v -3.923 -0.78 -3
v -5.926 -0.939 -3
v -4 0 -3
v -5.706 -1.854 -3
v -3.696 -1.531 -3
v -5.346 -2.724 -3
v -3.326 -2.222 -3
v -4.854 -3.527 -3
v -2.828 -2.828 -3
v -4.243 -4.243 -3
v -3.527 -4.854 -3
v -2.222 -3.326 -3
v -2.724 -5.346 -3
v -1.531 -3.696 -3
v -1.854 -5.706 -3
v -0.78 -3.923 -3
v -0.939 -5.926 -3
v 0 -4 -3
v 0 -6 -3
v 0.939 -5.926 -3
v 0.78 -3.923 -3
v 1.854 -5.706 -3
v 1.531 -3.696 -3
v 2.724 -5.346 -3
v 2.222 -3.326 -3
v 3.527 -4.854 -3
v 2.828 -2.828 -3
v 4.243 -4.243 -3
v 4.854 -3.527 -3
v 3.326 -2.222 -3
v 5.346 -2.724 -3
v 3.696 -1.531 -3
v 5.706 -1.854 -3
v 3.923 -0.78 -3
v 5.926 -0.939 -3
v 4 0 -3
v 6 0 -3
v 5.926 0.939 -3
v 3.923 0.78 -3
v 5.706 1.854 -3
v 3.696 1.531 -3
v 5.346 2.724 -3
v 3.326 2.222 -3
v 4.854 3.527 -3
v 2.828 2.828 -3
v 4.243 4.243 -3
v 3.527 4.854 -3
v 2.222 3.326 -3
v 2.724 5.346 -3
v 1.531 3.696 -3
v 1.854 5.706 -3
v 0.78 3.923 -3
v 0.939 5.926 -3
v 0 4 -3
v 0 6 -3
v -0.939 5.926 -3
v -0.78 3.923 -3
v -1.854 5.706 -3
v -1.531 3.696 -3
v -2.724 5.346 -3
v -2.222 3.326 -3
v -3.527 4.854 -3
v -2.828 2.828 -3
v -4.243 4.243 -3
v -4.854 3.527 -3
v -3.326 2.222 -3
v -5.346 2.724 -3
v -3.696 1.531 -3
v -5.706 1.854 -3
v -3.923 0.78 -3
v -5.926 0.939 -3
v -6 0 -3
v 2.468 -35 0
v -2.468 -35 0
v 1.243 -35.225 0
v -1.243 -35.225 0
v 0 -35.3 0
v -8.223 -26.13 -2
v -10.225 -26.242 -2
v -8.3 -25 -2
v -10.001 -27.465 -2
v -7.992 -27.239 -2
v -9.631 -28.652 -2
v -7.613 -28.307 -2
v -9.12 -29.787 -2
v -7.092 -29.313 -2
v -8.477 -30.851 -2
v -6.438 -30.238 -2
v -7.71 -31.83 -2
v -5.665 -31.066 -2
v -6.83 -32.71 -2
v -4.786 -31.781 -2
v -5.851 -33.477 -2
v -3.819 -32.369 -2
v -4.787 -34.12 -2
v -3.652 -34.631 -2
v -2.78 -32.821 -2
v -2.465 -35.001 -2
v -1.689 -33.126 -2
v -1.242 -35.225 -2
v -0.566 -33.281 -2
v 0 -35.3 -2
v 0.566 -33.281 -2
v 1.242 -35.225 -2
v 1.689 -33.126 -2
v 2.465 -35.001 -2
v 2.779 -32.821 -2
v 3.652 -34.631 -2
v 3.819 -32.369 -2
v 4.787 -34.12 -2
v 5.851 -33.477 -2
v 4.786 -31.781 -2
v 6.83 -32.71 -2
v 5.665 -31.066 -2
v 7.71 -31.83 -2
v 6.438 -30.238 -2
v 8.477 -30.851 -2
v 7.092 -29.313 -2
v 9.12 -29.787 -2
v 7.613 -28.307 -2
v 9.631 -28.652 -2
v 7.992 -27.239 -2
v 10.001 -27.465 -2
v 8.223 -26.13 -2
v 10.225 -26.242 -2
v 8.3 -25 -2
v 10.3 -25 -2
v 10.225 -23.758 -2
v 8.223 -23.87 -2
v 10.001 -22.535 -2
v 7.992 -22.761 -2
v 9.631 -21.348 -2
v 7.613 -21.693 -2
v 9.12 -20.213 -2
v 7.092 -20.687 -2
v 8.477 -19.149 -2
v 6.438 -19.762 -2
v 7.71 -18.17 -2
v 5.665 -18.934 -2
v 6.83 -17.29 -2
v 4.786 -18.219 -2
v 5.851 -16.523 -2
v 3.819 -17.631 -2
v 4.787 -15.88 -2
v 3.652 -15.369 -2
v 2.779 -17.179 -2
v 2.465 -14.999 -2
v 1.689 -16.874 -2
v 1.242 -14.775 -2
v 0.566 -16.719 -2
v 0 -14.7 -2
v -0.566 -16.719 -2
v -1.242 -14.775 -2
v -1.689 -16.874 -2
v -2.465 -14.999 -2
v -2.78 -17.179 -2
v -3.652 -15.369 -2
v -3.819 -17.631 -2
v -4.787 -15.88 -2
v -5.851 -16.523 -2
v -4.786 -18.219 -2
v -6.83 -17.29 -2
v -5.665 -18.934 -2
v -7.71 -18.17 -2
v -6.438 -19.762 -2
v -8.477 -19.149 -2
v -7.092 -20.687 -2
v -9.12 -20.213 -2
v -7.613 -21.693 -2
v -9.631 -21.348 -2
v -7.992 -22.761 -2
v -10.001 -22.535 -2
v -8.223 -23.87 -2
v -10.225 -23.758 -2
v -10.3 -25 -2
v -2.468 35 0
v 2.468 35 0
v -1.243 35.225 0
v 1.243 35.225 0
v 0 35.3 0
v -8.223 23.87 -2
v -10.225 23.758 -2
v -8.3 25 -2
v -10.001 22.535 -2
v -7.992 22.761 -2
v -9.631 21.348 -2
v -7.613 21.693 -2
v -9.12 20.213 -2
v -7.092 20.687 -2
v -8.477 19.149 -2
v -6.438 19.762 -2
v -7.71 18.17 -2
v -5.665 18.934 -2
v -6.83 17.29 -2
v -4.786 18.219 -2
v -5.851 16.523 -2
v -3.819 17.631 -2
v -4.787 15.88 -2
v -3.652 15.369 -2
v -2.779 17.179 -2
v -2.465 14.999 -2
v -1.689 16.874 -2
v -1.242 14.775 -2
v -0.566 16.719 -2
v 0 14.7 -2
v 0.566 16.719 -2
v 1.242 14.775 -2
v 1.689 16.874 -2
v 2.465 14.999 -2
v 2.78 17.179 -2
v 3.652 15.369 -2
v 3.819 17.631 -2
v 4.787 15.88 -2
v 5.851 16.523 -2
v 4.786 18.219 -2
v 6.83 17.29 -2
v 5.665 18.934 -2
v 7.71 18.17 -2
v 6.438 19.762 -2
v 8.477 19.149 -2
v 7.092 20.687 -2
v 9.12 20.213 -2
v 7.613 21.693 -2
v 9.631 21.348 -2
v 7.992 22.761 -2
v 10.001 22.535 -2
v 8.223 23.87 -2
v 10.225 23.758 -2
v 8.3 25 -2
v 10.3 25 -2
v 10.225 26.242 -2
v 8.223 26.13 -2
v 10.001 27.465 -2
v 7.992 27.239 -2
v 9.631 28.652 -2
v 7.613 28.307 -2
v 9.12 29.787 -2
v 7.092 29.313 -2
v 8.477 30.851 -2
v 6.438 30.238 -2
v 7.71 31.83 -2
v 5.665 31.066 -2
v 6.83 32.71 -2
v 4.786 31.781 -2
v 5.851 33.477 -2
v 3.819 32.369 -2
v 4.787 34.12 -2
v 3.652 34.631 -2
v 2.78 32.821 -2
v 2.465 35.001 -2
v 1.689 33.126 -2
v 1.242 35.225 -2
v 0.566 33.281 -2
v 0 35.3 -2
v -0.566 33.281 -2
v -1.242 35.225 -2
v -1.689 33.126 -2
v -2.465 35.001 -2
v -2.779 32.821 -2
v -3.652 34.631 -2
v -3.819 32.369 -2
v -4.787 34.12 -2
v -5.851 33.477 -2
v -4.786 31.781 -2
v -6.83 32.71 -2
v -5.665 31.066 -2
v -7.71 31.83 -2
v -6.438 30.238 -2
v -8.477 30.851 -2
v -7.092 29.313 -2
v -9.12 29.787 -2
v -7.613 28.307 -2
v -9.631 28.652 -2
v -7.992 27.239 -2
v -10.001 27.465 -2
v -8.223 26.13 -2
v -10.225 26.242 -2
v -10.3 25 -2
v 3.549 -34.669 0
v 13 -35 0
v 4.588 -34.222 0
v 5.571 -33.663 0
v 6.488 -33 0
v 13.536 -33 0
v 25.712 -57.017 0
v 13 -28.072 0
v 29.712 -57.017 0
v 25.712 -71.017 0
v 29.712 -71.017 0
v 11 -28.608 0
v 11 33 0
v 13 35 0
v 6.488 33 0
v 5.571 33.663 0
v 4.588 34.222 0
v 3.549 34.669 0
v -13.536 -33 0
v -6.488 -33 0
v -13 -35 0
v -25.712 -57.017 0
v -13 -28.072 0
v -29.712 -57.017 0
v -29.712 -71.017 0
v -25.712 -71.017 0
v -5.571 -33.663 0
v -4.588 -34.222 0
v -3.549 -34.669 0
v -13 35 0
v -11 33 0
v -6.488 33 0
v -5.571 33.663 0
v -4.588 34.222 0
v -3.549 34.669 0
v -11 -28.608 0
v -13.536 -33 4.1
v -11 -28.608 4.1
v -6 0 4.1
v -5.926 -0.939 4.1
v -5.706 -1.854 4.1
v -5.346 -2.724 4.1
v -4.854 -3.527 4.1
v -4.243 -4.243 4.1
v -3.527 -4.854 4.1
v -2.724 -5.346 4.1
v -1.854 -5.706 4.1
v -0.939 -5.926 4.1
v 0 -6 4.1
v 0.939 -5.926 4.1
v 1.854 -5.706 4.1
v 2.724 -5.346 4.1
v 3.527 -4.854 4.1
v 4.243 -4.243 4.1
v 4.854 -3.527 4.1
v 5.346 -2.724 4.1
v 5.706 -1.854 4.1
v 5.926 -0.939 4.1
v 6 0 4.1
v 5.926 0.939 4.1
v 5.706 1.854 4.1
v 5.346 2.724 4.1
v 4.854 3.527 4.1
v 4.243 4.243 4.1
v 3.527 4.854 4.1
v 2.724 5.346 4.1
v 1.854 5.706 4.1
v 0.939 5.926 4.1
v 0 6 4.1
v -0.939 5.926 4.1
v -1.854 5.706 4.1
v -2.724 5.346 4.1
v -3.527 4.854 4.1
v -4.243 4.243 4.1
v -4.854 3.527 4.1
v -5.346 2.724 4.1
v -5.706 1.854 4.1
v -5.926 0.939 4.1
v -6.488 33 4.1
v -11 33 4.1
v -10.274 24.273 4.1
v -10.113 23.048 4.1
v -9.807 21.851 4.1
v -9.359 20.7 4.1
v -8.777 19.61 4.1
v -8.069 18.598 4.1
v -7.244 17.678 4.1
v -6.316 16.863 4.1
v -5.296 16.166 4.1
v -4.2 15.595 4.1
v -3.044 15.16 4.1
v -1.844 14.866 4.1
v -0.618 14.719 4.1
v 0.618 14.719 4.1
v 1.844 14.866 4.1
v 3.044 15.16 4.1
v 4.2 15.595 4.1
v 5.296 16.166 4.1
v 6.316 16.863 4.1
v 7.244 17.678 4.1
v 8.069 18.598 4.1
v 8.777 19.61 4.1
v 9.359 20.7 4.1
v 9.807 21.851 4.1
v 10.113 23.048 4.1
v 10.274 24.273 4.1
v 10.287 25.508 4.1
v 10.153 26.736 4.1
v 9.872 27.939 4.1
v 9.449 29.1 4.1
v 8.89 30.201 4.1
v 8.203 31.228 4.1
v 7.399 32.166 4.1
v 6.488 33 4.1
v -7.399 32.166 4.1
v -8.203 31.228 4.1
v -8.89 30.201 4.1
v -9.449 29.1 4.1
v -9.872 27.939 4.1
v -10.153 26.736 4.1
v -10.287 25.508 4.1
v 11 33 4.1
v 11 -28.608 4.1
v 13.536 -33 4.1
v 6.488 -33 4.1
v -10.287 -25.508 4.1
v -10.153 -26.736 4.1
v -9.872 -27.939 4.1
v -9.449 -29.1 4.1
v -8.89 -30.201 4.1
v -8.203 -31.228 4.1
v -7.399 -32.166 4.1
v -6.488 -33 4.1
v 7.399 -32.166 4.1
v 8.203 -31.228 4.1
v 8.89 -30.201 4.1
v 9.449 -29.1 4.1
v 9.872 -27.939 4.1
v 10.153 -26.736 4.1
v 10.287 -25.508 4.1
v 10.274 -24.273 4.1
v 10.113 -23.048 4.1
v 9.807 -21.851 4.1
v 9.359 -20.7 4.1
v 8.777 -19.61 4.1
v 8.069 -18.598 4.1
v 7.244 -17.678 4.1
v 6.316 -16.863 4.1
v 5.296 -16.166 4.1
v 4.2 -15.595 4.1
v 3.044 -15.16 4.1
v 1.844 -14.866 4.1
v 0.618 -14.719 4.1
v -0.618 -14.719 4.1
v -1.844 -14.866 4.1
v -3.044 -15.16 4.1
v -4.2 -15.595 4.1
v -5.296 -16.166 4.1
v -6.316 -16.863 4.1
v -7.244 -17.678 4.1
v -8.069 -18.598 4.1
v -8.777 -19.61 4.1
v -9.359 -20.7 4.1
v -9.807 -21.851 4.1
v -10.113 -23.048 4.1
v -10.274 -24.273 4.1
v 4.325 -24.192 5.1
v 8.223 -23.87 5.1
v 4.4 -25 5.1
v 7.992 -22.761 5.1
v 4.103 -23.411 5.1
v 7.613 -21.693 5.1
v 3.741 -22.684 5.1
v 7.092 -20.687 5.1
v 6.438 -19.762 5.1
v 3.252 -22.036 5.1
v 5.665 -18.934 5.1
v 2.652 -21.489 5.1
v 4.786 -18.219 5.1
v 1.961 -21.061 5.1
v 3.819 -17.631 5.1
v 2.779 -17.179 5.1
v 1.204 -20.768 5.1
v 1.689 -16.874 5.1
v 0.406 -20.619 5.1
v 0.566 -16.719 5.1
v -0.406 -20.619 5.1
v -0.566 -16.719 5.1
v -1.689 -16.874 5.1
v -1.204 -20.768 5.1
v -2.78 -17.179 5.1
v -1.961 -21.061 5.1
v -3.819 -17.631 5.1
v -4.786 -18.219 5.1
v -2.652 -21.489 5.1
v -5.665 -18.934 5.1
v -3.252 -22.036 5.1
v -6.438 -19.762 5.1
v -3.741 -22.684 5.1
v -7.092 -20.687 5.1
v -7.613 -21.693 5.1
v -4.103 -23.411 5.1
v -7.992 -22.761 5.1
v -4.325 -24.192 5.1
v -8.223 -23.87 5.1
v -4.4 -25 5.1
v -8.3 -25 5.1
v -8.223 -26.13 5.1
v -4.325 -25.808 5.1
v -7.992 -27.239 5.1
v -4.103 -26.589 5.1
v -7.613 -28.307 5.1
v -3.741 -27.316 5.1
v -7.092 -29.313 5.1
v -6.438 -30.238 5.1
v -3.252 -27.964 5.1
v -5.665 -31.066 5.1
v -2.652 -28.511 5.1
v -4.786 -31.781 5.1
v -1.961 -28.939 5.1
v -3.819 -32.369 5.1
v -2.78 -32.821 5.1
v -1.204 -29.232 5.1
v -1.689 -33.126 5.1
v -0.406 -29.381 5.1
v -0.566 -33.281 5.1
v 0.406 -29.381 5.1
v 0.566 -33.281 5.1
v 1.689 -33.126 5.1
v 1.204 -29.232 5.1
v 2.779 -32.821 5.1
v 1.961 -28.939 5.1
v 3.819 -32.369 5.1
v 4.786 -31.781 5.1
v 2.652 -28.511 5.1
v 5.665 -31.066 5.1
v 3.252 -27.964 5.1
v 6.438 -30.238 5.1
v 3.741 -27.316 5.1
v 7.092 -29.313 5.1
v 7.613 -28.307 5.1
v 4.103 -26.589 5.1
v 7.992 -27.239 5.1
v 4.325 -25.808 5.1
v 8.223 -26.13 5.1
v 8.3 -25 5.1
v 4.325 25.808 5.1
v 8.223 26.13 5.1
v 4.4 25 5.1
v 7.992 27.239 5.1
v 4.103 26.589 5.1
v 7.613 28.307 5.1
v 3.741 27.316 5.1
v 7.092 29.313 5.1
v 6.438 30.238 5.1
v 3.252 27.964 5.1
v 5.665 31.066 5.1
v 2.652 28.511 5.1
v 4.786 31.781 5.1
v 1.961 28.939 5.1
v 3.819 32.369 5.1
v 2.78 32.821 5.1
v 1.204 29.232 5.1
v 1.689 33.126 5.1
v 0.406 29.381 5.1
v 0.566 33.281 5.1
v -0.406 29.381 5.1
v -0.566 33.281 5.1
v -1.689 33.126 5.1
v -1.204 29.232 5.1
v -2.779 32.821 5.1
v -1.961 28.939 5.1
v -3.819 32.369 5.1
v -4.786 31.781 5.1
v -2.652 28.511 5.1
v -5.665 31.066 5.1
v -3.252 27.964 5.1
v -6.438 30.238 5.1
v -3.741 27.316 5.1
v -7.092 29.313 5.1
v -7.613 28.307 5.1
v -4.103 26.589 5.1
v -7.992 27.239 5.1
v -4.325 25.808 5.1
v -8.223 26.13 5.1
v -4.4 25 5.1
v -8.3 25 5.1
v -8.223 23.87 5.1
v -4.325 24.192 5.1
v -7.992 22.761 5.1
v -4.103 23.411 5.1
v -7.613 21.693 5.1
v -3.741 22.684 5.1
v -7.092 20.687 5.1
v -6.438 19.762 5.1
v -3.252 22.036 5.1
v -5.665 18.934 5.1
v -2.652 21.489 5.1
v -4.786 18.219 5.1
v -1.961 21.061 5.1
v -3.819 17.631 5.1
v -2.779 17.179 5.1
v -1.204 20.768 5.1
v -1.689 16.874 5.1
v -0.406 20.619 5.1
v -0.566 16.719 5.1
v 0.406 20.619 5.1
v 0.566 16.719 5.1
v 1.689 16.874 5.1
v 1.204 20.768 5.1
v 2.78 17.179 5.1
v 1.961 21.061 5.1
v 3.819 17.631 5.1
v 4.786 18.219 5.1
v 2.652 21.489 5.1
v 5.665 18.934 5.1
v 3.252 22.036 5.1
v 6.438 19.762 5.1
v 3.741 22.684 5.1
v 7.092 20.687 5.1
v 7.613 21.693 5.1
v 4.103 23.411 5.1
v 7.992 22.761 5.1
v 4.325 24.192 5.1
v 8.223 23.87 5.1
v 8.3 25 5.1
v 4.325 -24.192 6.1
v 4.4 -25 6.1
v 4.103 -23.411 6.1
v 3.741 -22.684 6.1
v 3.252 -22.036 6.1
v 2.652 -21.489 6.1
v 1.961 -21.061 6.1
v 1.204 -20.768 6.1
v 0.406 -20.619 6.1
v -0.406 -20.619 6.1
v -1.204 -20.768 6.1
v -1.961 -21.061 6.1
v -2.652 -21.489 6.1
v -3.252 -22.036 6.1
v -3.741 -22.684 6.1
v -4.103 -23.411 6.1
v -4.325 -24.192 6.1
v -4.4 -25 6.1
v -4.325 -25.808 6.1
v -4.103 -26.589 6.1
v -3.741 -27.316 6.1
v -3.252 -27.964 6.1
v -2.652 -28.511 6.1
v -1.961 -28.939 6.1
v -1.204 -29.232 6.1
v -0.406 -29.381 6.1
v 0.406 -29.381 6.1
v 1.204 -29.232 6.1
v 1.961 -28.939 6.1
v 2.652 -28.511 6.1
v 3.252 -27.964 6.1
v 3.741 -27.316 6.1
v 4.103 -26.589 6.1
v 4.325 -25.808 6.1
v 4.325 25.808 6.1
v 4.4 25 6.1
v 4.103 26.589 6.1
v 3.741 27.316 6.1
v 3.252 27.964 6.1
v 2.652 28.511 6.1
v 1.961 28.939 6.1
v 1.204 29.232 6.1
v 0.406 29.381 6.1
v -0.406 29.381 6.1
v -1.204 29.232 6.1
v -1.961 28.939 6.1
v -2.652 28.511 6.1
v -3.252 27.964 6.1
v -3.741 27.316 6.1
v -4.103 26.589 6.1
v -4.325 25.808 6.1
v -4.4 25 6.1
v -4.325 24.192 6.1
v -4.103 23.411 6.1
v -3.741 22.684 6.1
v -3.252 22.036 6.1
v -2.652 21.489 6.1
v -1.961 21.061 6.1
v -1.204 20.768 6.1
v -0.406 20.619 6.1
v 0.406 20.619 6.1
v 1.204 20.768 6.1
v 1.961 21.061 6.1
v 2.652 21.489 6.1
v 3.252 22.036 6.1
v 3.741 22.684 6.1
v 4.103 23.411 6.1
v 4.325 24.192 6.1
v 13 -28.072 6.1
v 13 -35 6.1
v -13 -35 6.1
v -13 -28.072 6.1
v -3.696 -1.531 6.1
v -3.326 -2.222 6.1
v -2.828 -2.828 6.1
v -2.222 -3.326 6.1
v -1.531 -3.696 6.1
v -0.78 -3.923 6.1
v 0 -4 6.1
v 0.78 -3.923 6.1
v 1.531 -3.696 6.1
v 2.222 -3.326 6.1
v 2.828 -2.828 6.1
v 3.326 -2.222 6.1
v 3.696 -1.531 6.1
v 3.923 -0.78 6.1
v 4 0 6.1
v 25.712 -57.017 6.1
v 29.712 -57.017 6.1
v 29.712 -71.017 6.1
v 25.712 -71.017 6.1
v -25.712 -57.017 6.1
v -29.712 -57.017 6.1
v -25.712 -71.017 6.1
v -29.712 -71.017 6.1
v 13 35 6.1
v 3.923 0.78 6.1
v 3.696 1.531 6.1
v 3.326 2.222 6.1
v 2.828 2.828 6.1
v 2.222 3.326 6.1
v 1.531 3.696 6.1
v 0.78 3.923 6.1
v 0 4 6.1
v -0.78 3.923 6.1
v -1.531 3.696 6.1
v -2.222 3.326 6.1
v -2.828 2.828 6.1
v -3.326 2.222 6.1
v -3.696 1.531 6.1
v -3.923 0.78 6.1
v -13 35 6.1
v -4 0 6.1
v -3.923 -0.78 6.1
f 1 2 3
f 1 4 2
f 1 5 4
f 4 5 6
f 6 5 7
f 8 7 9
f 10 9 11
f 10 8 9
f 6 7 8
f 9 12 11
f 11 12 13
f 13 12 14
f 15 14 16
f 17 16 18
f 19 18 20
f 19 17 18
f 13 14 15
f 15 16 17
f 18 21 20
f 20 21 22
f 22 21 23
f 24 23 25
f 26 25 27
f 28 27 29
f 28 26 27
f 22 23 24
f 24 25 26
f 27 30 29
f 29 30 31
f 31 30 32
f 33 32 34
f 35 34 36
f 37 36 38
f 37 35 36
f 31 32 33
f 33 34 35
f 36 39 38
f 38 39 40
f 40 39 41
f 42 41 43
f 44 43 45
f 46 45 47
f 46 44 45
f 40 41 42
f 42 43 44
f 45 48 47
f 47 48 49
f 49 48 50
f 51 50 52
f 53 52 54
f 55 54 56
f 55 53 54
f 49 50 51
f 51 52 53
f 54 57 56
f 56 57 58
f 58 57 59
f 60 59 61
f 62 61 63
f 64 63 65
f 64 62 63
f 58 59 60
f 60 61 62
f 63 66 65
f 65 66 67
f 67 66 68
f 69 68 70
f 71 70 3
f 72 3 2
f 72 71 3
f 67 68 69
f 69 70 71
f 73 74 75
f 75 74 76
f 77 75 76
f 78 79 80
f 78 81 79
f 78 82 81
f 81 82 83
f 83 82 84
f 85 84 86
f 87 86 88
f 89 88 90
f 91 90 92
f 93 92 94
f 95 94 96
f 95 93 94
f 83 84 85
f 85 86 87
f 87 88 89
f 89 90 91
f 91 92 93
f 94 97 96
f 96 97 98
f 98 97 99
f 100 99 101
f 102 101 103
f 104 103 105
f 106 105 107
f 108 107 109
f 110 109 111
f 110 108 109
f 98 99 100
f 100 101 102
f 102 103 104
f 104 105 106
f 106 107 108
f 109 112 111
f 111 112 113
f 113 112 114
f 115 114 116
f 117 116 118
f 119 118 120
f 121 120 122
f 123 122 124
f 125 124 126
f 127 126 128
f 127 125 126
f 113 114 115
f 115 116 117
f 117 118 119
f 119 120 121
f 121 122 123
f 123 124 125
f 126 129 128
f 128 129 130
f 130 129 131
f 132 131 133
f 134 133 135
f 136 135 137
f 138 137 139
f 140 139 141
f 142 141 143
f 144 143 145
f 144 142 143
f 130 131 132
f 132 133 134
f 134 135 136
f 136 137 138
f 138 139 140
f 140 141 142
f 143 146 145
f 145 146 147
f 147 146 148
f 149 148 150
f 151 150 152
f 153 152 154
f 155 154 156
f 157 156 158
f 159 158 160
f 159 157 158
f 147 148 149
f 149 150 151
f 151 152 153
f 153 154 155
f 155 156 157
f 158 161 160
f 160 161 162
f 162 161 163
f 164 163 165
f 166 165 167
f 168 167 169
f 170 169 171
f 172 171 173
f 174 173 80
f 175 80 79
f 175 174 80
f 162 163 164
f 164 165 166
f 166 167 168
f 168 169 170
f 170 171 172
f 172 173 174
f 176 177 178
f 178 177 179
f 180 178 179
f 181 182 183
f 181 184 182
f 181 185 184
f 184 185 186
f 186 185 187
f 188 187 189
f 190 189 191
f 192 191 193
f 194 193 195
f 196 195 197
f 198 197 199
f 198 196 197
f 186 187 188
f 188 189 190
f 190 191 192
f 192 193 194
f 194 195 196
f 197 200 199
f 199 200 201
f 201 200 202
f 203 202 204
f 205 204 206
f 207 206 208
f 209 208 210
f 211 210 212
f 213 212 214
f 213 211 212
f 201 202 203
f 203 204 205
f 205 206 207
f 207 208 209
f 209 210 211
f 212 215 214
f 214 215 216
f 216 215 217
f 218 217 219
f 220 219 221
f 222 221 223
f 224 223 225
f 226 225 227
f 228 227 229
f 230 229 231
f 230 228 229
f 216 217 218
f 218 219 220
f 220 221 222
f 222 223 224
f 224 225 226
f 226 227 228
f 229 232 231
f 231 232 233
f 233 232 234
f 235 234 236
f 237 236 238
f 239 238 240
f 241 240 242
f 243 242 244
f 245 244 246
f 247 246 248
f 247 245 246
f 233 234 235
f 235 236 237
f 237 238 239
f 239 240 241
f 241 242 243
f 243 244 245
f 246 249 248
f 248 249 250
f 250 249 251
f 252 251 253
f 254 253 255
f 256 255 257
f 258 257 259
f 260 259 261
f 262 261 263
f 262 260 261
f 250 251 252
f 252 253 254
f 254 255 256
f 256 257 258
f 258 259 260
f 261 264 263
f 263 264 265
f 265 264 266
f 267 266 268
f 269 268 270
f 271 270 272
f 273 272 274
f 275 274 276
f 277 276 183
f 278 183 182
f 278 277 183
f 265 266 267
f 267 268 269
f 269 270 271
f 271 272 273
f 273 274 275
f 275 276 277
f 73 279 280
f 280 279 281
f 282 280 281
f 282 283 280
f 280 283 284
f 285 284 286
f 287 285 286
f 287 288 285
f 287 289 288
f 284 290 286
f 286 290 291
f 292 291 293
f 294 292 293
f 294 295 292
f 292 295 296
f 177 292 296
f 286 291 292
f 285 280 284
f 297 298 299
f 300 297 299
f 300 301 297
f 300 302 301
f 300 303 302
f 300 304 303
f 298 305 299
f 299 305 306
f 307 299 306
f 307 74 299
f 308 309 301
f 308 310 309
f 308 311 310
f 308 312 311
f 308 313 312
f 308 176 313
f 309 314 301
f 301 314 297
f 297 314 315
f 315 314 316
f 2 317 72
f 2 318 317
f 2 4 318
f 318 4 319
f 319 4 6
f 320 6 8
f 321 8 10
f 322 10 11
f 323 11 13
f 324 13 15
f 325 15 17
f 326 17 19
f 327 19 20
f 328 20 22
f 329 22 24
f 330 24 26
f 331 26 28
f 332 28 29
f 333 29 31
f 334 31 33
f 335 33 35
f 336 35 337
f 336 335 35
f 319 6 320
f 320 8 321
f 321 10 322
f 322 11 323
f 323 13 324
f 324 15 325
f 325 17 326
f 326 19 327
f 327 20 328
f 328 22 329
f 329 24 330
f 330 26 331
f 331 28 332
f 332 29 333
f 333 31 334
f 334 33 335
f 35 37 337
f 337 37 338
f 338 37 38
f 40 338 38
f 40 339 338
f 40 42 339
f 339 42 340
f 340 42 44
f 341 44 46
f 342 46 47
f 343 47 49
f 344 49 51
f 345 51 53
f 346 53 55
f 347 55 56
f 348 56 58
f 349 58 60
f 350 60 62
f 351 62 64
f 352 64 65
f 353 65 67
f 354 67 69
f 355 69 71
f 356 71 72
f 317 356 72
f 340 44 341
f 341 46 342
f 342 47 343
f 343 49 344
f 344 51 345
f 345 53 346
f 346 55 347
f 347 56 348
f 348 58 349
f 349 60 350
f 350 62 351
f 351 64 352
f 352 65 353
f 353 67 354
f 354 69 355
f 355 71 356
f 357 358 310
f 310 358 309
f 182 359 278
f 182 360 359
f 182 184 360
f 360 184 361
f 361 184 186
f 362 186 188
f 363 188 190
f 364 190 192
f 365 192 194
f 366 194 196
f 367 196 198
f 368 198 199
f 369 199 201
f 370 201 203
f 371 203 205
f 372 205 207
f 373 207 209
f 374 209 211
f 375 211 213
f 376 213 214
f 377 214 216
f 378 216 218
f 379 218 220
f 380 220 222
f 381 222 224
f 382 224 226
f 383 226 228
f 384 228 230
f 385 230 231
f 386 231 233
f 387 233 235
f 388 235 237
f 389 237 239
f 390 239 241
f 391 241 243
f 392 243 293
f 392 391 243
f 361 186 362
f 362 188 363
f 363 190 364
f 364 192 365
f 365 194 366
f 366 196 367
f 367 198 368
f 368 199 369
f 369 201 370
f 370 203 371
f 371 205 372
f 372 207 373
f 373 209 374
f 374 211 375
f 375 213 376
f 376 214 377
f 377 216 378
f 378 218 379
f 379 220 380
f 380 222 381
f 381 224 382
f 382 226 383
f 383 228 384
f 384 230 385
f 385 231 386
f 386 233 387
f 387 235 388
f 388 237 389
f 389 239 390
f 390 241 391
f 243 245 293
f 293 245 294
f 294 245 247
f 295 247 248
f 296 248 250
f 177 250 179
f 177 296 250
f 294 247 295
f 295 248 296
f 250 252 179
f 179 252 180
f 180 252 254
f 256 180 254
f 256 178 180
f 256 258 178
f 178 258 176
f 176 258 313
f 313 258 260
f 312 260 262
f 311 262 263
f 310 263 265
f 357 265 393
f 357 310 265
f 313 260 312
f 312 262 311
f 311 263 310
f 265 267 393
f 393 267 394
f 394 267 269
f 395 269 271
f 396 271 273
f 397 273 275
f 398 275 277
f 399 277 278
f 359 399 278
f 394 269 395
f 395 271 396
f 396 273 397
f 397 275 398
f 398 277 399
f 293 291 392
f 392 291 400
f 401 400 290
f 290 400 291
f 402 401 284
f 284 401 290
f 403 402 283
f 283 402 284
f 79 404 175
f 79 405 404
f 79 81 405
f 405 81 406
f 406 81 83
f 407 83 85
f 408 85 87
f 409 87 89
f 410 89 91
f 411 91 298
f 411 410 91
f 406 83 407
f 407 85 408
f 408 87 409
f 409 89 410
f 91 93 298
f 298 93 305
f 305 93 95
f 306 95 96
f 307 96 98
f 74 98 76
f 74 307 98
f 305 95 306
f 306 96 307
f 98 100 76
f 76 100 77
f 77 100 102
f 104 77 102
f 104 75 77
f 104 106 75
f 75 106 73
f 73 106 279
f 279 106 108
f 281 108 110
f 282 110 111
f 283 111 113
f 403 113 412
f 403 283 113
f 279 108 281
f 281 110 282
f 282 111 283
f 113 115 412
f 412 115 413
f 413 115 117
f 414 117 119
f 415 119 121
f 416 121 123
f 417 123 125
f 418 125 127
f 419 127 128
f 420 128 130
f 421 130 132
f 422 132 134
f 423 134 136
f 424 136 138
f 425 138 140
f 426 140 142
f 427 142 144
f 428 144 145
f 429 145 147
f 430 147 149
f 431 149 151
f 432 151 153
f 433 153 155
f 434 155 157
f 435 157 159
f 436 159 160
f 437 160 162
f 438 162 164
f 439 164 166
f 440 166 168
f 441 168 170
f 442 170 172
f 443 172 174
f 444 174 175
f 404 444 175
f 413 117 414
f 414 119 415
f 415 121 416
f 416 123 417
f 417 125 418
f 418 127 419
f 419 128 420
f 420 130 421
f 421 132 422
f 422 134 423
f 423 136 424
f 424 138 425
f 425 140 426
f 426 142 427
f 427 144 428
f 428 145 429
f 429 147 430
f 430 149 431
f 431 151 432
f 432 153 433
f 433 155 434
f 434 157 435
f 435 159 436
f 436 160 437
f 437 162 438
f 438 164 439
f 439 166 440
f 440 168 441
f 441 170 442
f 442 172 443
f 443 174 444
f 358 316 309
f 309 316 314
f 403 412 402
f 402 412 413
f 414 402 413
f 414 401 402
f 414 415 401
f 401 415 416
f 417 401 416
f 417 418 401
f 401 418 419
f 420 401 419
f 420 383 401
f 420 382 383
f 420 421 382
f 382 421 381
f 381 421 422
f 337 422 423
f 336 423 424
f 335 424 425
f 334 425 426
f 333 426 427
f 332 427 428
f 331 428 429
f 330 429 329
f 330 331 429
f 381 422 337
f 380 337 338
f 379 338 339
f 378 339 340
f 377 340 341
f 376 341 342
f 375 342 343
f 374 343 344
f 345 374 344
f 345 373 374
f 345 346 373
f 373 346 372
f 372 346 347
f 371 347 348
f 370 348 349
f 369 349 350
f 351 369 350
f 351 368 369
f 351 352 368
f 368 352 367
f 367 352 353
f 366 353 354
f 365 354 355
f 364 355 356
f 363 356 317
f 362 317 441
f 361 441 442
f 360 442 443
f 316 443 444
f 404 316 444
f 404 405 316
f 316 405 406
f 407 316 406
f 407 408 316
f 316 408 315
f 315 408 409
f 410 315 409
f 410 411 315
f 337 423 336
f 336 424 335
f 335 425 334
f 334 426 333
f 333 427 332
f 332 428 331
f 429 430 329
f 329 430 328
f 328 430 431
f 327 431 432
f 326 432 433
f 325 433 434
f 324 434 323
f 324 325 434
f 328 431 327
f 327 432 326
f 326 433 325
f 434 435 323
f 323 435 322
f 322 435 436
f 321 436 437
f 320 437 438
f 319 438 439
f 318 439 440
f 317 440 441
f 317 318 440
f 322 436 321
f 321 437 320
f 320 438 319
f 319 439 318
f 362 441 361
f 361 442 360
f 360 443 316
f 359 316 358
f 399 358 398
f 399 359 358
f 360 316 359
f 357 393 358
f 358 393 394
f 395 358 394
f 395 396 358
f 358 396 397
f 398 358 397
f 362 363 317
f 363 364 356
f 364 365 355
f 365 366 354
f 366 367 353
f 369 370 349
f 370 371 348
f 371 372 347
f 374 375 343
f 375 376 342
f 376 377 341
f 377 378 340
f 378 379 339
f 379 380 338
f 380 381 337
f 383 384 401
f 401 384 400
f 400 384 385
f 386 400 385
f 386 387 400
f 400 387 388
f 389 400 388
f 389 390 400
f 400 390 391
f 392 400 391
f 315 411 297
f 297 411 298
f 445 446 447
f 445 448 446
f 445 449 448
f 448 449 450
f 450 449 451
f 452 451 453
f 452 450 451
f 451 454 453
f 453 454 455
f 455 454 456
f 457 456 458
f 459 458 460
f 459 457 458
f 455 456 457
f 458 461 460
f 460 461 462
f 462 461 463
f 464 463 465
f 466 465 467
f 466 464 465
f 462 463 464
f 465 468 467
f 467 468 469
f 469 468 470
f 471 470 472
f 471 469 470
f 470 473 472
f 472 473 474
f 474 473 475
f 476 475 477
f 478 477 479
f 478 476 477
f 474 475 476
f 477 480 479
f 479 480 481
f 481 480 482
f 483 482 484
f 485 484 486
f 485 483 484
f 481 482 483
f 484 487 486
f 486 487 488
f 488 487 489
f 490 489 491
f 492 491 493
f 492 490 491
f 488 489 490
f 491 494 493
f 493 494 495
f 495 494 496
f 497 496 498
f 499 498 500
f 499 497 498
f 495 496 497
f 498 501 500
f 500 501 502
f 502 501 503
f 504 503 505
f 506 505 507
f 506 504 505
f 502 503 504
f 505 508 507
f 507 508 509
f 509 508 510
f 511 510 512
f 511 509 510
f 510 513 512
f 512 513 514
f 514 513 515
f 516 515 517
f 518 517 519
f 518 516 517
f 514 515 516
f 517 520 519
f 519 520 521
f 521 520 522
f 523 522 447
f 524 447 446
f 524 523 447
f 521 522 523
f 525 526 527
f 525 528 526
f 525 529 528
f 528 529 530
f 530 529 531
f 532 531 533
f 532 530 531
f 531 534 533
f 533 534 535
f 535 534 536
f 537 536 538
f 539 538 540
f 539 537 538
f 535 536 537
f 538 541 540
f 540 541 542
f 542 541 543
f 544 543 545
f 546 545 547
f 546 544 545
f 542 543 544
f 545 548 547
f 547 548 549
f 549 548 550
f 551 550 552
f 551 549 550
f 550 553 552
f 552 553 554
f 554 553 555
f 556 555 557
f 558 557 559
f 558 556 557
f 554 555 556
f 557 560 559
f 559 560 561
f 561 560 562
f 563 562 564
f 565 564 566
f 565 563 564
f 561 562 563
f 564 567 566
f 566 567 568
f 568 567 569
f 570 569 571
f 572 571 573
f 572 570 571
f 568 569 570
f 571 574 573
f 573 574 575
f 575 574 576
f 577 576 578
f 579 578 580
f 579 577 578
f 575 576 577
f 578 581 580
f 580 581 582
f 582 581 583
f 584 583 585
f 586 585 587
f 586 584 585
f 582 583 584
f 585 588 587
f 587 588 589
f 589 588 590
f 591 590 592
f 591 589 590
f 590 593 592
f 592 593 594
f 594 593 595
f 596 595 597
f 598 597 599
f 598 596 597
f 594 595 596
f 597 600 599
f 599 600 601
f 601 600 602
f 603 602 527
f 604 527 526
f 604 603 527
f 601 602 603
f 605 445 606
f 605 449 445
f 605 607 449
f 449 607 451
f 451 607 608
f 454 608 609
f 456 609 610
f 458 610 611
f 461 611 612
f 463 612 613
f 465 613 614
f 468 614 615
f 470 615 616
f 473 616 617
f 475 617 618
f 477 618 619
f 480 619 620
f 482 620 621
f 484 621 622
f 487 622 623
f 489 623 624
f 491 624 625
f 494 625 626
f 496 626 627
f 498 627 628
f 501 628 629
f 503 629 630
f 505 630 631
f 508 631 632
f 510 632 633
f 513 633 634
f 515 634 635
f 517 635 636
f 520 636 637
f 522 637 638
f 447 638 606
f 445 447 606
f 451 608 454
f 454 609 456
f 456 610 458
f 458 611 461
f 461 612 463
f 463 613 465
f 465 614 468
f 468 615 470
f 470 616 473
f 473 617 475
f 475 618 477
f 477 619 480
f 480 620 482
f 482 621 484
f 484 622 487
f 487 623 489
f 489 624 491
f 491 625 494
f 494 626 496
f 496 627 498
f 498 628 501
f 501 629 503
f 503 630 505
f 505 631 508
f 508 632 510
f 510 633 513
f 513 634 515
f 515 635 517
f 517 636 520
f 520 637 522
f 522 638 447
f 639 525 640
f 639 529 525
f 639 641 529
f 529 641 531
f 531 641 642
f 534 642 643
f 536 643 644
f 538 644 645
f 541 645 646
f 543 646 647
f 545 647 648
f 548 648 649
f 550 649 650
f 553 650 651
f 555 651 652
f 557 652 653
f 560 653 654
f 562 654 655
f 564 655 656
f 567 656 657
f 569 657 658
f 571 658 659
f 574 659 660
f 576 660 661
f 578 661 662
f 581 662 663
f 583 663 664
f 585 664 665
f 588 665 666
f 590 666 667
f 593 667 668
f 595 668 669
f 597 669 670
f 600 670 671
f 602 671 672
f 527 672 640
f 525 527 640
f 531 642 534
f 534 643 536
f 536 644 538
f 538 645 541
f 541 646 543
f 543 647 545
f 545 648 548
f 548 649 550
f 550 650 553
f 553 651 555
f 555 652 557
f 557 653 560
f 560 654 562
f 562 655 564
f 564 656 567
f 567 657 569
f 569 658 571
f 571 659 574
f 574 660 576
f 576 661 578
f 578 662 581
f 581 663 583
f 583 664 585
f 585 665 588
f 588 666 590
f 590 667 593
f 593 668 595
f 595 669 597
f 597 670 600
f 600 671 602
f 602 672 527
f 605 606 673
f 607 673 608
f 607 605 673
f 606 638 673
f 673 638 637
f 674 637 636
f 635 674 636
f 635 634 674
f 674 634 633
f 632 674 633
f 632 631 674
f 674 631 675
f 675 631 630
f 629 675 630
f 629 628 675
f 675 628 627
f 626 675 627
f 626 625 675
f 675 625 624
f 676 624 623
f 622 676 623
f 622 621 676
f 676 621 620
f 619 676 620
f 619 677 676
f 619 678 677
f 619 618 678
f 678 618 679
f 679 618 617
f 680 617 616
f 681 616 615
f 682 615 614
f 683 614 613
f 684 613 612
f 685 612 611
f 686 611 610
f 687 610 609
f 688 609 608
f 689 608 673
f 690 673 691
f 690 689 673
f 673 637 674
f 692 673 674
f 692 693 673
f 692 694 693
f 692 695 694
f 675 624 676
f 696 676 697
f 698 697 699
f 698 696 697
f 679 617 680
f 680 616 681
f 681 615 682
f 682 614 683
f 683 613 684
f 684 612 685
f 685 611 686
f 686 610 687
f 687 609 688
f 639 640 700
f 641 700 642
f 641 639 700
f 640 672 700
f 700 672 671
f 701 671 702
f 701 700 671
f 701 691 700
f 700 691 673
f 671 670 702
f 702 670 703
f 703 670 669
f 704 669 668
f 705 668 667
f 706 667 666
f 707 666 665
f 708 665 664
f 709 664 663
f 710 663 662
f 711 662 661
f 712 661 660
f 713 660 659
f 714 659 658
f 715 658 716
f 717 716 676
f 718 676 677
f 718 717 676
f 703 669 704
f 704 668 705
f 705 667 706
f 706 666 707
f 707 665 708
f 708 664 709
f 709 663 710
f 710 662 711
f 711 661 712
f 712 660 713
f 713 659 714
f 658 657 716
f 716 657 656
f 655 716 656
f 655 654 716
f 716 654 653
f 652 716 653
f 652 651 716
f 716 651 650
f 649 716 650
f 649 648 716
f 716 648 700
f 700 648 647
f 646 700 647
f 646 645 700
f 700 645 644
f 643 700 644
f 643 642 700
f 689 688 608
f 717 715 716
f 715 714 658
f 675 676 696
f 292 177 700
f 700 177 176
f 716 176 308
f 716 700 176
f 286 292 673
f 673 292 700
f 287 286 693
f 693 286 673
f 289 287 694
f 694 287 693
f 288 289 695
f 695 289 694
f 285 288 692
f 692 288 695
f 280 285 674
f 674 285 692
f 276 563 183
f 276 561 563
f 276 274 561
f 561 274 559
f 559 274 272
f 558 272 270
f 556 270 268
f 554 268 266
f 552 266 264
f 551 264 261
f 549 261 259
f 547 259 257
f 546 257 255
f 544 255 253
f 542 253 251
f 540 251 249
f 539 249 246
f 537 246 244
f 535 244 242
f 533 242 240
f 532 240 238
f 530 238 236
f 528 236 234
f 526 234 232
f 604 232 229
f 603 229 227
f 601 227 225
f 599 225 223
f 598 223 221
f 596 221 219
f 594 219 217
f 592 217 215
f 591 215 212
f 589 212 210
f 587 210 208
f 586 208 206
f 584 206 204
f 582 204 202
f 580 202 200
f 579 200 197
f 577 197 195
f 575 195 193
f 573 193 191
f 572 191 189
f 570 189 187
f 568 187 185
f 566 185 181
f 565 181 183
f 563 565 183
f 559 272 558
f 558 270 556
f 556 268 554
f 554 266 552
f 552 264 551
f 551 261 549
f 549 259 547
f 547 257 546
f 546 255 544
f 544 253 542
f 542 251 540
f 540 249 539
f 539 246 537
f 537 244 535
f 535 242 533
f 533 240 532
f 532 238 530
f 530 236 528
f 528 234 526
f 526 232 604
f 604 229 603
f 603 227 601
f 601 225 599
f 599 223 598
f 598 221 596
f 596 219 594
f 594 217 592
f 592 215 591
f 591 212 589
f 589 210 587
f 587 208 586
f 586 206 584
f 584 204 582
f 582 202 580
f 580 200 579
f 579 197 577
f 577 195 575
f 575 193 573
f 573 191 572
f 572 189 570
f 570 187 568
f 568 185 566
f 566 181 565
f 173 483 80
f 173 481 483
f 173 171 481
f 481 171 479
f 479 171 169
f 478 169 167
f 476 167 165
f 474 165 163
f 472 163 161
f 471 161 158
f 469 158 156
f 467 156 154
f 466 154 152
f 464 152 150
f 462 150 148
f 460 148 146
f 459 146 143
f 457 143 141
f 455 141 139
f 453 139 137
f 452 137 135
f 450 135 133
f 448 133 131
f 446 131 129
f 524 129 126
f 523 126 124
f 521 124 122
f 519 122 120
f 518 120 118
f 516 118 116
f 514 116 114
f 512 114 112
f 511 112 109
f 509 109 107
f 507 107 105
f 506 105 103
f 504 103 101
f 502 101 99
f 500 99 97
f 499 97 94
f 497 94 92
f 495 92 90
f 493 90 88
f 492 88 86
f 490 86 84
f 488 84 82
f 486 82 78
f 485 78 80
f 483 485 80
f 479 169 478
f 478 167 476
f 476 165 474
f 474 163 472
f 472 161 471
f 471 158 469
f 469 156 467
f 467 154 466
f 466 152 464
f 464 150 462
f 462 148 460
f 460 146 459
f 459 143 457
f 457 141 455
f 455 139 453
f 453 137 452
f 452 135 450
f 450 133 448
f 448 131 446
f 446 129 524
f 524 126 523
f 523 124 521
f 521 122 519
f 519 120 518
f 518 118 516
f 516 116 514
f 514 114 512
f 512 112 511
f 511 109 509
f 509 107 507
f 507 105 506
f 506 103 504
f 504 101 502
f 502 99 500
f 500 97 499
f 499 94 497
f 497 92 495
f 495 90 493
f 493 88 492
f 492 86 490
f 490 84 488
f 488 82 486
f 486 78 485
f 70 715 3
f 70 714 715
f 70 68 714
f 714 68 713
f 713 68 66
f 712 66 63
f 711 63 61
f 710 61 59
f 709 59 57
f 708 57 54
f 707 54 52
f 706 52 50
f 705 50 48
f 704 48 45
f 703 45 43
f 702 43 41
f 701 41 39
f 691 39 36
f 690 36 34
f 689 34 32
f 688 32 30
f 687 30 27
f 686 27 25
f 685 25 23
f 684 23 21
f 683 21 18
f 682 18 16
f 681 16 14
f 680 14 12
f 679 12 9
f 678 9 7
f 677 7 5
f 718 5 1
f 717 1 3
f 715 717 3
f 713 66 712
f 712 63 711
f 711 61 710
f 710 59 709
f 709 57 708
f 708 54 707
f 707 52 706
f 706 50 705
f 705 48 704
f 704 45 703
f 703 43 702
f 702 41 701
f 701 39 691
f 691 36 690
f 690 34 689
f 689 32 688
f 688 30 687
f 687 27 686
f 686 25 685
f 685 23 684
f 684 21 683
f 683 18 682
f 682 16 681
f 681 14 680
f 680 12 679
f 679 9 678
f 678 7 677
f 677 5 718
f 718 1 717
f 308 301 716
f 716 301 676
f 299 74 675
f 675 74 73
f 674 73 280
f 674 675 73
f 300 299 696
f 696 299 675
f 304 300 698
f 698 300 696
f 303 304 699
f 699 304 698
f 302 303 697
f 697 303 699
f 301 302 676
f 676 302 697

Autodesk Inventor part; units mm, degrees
ref_plane "YZ Plane" through (0, 0, 0) normal (1, 0, 0) x (0, 1, 0)
ref_plane "XZ Plane" through (0, 0, 0) normal (0, 1, 0) x (-1, 0, 0)
ref_plane "XY Plane" through (0, 0, 0) normal (0, 0, 1) x (1, 0, 0)
sketch "Skizze4" plane through (0, 0, 0) normal (0, 0, 1) x (1, 0, 0)
  circle A0 centre (0, 25) radius 4 construction
  circle A1 centre (0, -25) radius 4 construction
  circle A2 centre (0, 0) radius 3 construction
  line L0 (-11.0333, -36.517) -> (-22.869, -57.017) construction
  line L1 (12.638, -36.517) -> (-11.0333, -36.517) construction
  line L2 (24.4737, -57.017) -> (12.638, -36.517) construction
  line L3 (12.638, -77.517) -> (24.4737, -57.017) construction
  circle A3 centre (0.8023, -57.017) radius 18 construction
  line L4 (12.638, -36.517) -> (-11.0333, -36.517) construction
  line L5 (-11.0333, -36.517) -> (-22.869, -57.017) construction
  line L6 (-22.869, -57.017) -> (-11.0334, -77.517) construction
  line L7 (-11.0334, -77.517) -> (12.638, -77.517) construction
  line L8 (12.638, -77.517) -> (24.4737, -57.017) construction
  line L9 (24.4737, -57.017) -> (12.638, -36.517) construction
  circle A4 centre (0, 25) radius 4.3
  circle A5 centre (0, -25) radius 4.3
  circle A6 centre (0, 0) radius 4
  circle A7 centre (0, 25) radius 8 construction
  circle A8 centre (0, -25) radius 8 projected
  circle A9 centre (0, -25) radius 8.3
  circle A10 centre (0, 25) radius 8.3
  line L10 (-13, 35) -> (13, 35)
  line L11 (13, 35) -> (13, -35)
  line L12 (13, -35) -> (-13, -35)
  line L13 (-13, -35) -> (-13, 35)
  line L14 (-13, 35) -> (13, -35) construction
  line L15 (13, 35) -> (-13, -35) construction
  line L16 (-13, -35) -> (-25.7115, -57.017)
  line L17 (-13, -35) -> (12.423, -35) construction
  line L18 (-25.7115, -57.017) -> (-25.7115, -71.017)
  line L19 (-25.7115, -71.017) -> (-29.7115, -71.017)
  line L20 (-29.7115, -71.017) -> (-29.7115, -57.017)
  line L21 (-29.7115, -57.017) -> (-13, -28.0718)
  line L22 (13, -35) -> (25.7115, -57.017)
  line L23 (13, -35) -> (38.423, -35) construction
  line L24 (25.7115, -57.017) -> (25.7115, -71.017)
  line L25 (25.7115, -71.017) -> (29.7115, -71.017)
  line L26 (29.7115, -71.017) -> (29.7115, -57.017)
  line L27 (29.7115, -57.017) -> (13, -28.0718)
  point P0 (0, 0)
  dimension "d22" = 0.3
  dimension "d23" = 0.3
  dimension "d24" = 1
  dimension "d25" = 0.3
  dimension "d26" = 0.3
  dimension "d27" = 26
  dimension "d28" = 70
  dimension "d29" = 120
  dimension "d30" = 14
  dimension "d31" = 4
  dimension "d32" = 90
  dimension "d33" = 60
  dimension "d34" = 4
  dimension "d35" = 90
  dimension "d36" = 150
  dimension "d46" = 12.7115
  dimension "d47" = 0
extrude "Extrusion4" add sketch "Skizze4" along normal up to surface (5.1 mm away) contours L10 L11 L12 L13 | L13 L16 L18 L19 L20 L21 | L27 L26 L25 L24 L22 L11
sketch "Skizze5" plane through (-13, -35, 5.1) normal (0, 0, 1) x (1, 0, 0)
  circle A0 centre (13, 60) radius 4 construction
  circle A1 centre (13, 10) radius 4 construction
  circle A2 centre (13, 60) radius 8.3 projected
  circle A3 centre (13, 10) radius 8.3 projected
  circle A4 centre (13, 35) radius 4 projected
  line L0 (26, 0) -> (0, 0) projected
  line L1 (38.7115, -22.017) -> (26, 0) projected
  line L2 (38.7115, -36.017) -> (38.7115, -22.017) projected
  line L3 (42.7115, -36.017) -> (38.7115, -36.017) projected
  line L4 (42.7115, -22.017) -> (42.7115, -36.017) projected
  line L5 (26, 6.9282) -> (42.7115, -22.017) projected
  line L6 (26, 70) -> (26, 6.9282) projected
  line L7 (0, 70) -> (26, 70) projected
  line L8 (0, 6.9282) -> (0, 70) projected
  line L9 (-16.7115, -22.017) -> (0, 6.9282) projected
  line L10 (-16.7115, -36.017) -> (-16.7115, -22.017) projected
  line L11 (-12.7115, -36.017) -> (-16.7115, -36.017) projected
  line L12 (-12.7115, -22.017) -> (-12.7115, -36.017) projected
  line L13 (0, 0) -> (-12.7115, -22.017) projected
  circle A5 centre (13, 60) radius 4.4
  circle A6 centre (13, 10) radius 4.4
  point P0 (13, 35)
  dimension "d39" = 0.4
  dimension "d40" = 0.4
extrude "Extrusion5" add sketch "Skizze5" along normal blind 1 contours A2 | A3 | L0 L13 L12 L11 L10 L9 L8 L7 L6 L5 L4 L3 L2 L1
shell "Wandung1" thickness 2 removed faces 1 at (-11.3529, 9.9806, 0)
sketch "Skizze6" plane through (0, 0, 0) normal (0, 0, -1) x (-1, 0, 0)
  circle A0 centre (0, -25) radius 4.4 projected
  circle A1 centre (0, -25) radius 8.3 projected
  arc A2 (-6.4877, 33) -> (6.4877, 33) centre (0, 25) ccw projected
  circle A3 centre (0, 25) radius 4.4 projected
  circle A4 centre (0, 25) radius 8.3 projected
  arc A5 (6.4877, -33) -> (-6.4877, -33) centre (0, -25) ccw projected
  circle A6 centre (0, -25) radius 10.3
  circle A7 centre (0, 25) radius 10.3
  point P0 (0, 0)
extrude "Extrusion6" add sketch "Skizze6" along normal blind 2 contours A7 A2 | A6 A5
sketch "Skizze7" plane through (0, 0, 0) normal (0, 0, -1) x (-1, 0, 0)
  circle A0 centre (0, 0) radius 4 projected
  circle A1 centre (0, 0) radius 6 projected
  point P0 (0, 0)
extrude "Extrusion7" add sketch "Skizze7" along normal blind 3
properties part number "28_Z_Stage"
